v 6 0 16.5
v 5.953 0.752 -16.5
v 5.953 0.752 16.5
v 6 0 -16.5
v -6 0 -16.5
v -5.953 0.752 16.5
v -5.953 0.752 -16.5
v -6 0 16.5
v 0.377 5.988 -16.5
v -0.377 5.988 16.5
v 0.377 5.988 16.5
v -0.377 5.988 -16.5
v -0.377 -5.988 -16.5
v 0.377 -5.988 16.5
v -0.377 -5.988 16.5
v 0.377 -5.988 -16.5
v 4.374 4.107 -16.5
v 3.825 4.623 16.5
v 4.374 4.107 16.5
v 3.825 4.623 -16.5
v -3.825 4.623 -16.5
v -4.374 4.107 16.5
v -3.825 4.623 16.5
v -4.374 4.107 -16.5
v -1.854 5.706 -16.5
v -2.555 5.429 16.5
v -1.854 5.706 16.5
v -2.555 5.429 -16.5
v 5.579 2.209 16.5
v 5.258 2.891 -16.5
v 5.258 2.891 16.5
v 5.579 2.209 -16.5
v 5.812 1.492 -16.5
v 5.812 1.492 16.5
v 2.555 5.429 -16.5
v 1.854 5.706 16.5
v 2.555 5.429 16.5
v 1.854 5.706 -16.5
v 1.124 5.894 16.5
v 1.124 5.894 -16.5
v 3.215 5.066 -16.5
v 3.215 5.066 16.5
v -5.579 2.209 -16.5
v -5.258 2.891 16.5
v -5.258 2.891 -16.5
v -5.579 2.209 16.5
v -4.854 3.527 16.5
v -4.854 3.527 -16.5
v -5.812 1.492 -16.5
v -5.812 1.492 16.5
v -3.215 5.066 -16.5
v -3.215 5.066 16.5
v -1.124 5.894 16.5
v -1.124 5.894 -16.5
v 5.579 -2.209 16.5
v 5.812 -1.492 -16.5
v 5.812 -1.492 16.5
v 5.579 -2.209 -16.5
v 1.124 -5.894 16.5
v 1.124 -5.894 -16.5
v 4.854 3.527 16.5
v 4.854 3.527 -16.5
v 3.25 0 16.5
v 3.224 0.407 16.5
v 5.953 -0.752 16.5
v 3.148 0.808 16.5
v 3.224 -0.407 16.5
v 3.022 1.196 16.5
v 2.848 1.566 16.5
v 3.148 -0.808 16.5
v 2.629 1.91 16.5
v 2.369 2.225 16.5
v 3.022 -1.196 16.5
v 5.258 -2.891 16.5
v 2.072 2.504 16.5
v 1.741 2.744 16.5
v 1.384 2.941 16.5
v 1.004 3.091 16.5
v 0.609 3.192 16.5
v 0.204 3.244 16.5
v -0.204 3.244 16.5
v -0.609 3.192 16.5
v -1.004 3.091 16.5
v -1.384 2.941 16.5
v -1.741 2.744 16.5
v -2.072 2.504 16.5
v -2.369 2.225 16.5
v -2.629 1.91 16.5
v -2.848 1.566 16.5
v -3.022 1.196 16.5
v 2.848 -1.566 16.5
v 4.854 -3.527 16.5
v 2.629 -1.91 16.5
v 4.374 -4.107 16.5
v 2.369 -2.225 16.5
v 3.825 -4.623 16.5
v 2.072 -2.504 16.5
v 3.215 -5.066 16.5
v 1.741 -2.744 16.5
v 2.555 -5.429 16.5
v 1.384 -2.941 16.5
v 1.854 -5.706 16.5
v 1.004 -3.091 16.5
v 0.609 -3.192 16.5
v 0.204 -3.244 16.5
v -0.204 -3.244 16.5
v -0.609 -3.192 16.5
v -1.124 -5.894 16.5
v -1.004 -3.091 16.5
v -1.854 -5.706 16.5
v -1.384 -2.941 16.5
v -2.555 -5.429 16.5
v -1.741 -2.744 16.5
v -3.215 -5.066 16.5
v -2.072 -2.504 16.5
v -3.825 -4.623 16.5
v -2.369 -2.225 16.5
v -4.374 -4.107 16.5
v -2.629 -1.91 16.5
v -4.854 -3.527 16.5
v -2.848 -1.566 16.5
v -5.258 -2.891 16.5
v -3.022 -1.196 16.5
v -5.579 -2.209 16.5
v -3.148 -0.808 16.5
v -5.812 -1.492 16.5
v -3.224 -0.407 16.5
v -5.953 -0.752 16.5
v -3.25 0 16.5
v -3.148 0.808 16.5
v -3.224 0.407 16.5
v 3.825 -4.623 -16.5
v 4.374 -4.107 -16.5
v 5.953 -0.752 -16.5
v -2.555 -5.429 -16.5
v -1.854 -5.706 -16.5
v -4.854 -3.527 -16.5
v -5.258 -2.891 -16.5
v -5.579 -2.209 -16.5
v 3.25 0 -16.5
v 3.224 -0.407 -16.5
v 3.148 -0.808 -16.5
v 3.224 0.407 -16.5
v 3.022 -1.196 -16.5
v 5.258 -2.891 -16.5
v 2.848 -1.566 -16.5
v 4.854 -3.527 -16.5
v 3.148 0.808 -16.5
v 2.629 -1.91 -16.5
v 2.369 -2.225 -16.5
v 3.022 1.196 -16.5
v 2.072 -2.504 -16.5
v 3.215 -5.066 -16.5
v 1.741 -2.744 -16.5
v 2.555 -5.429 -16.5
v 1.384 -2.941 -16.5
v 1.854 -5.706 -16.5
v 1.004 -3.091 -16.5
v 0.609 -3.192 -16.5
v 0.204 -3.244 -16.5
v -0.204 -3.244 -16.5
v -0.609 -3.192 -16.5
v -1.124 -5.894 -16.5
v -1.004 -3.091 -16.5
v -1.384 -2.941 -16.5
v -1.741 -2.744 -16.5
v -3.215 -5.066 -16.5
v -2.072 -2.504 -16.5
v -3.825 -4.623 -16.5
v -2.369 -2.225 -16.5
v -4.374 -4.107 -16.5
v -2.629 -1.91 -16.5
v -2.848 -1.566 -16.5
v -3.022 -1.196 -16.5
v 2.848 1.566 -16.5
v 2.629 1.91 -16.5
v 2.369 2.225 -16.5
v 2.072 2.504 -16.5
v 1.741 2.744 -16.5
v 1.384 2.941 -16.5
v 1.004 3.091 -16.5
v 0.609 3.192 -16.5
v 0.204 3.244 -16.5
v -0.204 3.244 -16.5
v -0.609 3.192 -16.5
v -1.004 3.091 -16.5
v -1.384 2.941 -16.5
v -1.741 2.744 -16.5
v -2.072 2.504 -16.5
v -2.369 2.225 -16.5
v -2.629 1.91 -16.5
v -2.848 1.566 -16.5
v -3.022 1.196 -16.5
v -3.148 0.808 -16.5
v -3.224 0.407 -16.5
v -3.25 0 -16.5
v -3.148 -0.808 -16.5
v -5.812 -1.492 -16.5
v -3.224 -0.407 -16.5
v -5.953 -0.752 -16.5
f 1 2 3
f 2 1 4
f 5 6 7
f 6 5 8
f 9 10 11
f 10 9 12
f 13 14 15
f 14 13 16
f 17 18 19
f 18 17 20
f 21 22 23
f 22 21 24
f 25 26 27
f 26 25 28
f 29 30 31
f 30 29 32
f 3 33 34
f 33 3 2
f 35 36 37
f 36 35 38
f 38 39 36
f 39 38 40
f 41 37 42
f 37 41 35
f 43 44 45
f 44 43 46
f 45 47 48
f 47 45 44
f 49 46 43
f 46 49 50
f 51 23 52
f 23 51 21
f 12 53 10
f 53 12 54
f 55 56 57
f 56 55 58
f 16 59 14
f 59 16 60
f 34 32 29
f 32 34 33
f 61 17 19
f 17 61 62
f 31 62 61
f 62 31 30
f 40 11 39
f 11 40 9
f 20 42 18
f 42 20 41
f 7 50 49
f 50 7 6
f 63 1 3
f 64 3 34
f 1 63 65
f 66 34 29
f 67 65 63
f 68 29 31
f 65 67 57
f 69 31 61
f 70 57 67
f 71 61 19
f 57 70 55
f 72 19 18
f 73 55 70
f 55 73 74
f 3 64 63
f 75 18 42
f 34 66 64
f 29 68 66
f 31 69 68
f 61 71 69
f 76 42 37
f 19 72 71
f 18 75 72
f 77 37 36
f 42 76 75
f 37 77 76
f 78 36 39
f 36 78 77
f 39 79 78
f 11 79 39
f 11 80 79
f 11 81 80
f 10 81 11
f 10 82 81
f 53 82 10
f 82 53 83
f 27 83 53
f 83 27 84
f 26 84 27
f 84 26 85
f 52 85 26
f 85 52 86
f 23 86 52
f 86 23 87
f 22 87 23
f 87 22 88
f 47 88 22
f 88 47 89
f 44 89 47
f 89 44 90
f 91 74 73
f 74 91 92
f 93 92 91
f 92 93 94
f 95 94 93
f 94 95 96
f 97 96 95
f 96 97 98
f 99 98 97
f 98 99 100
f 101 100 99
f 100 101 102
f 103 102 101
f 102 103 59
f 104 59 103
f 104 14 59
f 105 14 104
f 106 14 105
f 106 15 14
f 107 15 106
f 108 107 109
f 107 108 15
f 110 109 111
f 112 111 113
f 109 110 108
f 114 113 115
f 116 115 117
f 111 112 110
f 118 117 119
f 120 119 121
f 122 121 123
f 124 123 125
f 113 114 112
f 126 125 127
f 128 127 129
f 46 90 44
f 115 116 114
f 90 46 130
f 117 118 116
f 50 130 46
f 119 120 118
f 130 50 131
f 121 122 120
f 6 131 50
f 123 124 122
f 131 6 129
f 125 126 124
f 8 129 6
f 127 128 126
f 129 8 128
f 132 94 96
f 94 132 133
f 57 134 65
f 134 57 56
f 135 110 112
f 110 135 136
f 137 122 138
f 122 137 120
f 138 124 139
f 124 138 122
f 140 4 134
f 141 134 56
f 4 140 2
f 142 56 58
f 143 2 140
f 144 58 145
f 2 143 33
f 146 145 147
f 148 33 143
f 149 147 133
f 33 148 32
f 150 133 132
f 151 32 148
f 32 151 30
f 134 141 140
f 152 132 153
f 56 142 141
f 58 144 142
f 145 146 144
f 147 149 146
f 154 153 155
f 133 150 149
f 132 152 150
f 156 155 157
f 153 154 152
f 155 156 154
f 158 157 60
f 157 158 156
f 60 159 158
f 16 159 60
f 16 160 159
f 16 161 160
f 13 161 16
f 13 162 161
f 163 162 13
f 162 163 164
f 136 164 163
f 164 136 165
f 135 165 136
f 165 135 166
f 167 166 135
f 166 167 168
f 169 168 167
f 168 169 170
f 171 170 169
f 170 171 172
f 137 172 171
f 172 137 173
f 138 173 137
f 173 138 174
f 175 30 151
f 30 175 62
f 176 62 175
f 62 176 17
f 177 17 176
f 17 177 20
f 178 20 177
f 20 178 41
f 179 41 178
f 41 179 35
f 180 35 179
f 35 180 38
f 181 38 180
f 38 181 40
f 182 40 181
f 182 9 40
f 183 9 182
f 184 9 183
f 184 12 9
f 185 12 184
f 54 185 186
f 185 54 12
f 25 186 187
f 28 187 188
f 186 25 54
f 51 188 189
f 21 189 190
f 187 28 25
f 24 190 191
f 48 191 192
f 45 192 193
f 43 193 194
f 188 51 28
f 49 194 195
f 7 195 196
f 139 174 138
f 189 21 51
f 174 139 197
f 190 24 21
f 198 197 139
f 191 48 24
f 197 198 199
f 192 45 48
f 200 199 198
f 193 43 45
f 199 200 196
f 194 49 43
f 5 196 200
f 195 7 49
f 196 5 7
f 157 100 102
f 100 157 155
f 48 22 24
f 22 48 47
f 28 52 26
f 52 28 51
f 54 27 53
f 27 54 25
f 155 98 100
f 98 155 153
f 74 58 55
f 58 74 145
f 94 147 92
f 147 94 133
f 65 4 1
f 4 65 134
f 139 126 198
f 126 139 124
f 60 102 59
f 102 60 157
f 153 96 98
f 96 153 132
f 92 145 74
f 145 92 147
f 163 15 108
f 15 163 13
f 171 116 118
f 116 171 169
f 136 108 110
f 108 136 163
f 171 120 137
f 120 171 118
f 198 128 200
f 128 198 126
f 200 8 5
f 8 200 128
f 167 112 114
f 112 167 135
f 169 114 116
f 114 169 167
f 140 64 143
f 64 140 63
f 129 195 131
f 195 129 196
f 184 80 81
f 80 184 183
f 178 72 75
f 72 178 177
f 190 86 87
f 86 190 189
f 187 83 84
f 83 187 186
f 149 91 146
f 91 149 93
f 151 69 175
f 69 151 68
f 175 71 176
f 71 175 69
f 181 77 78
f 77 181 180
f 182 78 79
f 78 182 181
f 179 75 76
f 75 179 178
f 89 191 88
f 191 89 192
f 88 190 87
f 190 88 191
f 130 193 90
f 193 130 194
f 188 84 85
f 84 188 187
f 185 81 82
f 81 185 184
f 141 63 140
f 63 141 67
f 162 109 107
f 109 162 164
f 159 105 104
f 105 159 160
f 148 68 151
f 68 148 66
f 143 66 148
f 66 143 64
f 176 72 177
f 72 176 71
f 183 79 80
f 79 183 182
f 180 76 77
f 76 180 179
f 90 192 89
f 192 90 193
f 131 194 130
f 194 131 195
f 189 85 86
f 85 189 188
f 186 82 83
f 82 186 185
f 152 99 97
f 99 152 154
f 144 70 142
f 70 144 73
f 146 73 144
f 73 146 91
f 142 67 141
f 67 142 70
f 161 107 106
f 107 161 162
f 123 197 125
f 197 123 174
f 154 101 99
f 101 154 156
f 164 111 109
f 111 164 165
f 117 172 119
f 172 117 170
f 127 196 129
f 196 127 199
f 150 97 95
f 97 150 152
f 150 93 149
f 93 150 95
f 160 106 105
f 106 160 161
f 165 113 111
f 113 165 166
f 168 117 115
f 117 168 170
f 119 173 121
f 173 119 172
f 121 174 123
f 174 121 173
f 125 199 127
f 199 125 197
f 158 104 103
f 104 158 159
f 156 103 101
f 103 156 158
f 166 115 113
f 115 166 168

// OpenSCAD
$fn = 50;


difference() {
	union() {
		translate(v = [0, 0, -16.5000000000]) {
			cylinder(h = 33, r = 6.0000000000);
		}
	}
	union() {
		translate(v = [0, 0, -100.0000000000]) {
			cylinder(h = 200, r = 3.2500000000);
		}
	}
}
